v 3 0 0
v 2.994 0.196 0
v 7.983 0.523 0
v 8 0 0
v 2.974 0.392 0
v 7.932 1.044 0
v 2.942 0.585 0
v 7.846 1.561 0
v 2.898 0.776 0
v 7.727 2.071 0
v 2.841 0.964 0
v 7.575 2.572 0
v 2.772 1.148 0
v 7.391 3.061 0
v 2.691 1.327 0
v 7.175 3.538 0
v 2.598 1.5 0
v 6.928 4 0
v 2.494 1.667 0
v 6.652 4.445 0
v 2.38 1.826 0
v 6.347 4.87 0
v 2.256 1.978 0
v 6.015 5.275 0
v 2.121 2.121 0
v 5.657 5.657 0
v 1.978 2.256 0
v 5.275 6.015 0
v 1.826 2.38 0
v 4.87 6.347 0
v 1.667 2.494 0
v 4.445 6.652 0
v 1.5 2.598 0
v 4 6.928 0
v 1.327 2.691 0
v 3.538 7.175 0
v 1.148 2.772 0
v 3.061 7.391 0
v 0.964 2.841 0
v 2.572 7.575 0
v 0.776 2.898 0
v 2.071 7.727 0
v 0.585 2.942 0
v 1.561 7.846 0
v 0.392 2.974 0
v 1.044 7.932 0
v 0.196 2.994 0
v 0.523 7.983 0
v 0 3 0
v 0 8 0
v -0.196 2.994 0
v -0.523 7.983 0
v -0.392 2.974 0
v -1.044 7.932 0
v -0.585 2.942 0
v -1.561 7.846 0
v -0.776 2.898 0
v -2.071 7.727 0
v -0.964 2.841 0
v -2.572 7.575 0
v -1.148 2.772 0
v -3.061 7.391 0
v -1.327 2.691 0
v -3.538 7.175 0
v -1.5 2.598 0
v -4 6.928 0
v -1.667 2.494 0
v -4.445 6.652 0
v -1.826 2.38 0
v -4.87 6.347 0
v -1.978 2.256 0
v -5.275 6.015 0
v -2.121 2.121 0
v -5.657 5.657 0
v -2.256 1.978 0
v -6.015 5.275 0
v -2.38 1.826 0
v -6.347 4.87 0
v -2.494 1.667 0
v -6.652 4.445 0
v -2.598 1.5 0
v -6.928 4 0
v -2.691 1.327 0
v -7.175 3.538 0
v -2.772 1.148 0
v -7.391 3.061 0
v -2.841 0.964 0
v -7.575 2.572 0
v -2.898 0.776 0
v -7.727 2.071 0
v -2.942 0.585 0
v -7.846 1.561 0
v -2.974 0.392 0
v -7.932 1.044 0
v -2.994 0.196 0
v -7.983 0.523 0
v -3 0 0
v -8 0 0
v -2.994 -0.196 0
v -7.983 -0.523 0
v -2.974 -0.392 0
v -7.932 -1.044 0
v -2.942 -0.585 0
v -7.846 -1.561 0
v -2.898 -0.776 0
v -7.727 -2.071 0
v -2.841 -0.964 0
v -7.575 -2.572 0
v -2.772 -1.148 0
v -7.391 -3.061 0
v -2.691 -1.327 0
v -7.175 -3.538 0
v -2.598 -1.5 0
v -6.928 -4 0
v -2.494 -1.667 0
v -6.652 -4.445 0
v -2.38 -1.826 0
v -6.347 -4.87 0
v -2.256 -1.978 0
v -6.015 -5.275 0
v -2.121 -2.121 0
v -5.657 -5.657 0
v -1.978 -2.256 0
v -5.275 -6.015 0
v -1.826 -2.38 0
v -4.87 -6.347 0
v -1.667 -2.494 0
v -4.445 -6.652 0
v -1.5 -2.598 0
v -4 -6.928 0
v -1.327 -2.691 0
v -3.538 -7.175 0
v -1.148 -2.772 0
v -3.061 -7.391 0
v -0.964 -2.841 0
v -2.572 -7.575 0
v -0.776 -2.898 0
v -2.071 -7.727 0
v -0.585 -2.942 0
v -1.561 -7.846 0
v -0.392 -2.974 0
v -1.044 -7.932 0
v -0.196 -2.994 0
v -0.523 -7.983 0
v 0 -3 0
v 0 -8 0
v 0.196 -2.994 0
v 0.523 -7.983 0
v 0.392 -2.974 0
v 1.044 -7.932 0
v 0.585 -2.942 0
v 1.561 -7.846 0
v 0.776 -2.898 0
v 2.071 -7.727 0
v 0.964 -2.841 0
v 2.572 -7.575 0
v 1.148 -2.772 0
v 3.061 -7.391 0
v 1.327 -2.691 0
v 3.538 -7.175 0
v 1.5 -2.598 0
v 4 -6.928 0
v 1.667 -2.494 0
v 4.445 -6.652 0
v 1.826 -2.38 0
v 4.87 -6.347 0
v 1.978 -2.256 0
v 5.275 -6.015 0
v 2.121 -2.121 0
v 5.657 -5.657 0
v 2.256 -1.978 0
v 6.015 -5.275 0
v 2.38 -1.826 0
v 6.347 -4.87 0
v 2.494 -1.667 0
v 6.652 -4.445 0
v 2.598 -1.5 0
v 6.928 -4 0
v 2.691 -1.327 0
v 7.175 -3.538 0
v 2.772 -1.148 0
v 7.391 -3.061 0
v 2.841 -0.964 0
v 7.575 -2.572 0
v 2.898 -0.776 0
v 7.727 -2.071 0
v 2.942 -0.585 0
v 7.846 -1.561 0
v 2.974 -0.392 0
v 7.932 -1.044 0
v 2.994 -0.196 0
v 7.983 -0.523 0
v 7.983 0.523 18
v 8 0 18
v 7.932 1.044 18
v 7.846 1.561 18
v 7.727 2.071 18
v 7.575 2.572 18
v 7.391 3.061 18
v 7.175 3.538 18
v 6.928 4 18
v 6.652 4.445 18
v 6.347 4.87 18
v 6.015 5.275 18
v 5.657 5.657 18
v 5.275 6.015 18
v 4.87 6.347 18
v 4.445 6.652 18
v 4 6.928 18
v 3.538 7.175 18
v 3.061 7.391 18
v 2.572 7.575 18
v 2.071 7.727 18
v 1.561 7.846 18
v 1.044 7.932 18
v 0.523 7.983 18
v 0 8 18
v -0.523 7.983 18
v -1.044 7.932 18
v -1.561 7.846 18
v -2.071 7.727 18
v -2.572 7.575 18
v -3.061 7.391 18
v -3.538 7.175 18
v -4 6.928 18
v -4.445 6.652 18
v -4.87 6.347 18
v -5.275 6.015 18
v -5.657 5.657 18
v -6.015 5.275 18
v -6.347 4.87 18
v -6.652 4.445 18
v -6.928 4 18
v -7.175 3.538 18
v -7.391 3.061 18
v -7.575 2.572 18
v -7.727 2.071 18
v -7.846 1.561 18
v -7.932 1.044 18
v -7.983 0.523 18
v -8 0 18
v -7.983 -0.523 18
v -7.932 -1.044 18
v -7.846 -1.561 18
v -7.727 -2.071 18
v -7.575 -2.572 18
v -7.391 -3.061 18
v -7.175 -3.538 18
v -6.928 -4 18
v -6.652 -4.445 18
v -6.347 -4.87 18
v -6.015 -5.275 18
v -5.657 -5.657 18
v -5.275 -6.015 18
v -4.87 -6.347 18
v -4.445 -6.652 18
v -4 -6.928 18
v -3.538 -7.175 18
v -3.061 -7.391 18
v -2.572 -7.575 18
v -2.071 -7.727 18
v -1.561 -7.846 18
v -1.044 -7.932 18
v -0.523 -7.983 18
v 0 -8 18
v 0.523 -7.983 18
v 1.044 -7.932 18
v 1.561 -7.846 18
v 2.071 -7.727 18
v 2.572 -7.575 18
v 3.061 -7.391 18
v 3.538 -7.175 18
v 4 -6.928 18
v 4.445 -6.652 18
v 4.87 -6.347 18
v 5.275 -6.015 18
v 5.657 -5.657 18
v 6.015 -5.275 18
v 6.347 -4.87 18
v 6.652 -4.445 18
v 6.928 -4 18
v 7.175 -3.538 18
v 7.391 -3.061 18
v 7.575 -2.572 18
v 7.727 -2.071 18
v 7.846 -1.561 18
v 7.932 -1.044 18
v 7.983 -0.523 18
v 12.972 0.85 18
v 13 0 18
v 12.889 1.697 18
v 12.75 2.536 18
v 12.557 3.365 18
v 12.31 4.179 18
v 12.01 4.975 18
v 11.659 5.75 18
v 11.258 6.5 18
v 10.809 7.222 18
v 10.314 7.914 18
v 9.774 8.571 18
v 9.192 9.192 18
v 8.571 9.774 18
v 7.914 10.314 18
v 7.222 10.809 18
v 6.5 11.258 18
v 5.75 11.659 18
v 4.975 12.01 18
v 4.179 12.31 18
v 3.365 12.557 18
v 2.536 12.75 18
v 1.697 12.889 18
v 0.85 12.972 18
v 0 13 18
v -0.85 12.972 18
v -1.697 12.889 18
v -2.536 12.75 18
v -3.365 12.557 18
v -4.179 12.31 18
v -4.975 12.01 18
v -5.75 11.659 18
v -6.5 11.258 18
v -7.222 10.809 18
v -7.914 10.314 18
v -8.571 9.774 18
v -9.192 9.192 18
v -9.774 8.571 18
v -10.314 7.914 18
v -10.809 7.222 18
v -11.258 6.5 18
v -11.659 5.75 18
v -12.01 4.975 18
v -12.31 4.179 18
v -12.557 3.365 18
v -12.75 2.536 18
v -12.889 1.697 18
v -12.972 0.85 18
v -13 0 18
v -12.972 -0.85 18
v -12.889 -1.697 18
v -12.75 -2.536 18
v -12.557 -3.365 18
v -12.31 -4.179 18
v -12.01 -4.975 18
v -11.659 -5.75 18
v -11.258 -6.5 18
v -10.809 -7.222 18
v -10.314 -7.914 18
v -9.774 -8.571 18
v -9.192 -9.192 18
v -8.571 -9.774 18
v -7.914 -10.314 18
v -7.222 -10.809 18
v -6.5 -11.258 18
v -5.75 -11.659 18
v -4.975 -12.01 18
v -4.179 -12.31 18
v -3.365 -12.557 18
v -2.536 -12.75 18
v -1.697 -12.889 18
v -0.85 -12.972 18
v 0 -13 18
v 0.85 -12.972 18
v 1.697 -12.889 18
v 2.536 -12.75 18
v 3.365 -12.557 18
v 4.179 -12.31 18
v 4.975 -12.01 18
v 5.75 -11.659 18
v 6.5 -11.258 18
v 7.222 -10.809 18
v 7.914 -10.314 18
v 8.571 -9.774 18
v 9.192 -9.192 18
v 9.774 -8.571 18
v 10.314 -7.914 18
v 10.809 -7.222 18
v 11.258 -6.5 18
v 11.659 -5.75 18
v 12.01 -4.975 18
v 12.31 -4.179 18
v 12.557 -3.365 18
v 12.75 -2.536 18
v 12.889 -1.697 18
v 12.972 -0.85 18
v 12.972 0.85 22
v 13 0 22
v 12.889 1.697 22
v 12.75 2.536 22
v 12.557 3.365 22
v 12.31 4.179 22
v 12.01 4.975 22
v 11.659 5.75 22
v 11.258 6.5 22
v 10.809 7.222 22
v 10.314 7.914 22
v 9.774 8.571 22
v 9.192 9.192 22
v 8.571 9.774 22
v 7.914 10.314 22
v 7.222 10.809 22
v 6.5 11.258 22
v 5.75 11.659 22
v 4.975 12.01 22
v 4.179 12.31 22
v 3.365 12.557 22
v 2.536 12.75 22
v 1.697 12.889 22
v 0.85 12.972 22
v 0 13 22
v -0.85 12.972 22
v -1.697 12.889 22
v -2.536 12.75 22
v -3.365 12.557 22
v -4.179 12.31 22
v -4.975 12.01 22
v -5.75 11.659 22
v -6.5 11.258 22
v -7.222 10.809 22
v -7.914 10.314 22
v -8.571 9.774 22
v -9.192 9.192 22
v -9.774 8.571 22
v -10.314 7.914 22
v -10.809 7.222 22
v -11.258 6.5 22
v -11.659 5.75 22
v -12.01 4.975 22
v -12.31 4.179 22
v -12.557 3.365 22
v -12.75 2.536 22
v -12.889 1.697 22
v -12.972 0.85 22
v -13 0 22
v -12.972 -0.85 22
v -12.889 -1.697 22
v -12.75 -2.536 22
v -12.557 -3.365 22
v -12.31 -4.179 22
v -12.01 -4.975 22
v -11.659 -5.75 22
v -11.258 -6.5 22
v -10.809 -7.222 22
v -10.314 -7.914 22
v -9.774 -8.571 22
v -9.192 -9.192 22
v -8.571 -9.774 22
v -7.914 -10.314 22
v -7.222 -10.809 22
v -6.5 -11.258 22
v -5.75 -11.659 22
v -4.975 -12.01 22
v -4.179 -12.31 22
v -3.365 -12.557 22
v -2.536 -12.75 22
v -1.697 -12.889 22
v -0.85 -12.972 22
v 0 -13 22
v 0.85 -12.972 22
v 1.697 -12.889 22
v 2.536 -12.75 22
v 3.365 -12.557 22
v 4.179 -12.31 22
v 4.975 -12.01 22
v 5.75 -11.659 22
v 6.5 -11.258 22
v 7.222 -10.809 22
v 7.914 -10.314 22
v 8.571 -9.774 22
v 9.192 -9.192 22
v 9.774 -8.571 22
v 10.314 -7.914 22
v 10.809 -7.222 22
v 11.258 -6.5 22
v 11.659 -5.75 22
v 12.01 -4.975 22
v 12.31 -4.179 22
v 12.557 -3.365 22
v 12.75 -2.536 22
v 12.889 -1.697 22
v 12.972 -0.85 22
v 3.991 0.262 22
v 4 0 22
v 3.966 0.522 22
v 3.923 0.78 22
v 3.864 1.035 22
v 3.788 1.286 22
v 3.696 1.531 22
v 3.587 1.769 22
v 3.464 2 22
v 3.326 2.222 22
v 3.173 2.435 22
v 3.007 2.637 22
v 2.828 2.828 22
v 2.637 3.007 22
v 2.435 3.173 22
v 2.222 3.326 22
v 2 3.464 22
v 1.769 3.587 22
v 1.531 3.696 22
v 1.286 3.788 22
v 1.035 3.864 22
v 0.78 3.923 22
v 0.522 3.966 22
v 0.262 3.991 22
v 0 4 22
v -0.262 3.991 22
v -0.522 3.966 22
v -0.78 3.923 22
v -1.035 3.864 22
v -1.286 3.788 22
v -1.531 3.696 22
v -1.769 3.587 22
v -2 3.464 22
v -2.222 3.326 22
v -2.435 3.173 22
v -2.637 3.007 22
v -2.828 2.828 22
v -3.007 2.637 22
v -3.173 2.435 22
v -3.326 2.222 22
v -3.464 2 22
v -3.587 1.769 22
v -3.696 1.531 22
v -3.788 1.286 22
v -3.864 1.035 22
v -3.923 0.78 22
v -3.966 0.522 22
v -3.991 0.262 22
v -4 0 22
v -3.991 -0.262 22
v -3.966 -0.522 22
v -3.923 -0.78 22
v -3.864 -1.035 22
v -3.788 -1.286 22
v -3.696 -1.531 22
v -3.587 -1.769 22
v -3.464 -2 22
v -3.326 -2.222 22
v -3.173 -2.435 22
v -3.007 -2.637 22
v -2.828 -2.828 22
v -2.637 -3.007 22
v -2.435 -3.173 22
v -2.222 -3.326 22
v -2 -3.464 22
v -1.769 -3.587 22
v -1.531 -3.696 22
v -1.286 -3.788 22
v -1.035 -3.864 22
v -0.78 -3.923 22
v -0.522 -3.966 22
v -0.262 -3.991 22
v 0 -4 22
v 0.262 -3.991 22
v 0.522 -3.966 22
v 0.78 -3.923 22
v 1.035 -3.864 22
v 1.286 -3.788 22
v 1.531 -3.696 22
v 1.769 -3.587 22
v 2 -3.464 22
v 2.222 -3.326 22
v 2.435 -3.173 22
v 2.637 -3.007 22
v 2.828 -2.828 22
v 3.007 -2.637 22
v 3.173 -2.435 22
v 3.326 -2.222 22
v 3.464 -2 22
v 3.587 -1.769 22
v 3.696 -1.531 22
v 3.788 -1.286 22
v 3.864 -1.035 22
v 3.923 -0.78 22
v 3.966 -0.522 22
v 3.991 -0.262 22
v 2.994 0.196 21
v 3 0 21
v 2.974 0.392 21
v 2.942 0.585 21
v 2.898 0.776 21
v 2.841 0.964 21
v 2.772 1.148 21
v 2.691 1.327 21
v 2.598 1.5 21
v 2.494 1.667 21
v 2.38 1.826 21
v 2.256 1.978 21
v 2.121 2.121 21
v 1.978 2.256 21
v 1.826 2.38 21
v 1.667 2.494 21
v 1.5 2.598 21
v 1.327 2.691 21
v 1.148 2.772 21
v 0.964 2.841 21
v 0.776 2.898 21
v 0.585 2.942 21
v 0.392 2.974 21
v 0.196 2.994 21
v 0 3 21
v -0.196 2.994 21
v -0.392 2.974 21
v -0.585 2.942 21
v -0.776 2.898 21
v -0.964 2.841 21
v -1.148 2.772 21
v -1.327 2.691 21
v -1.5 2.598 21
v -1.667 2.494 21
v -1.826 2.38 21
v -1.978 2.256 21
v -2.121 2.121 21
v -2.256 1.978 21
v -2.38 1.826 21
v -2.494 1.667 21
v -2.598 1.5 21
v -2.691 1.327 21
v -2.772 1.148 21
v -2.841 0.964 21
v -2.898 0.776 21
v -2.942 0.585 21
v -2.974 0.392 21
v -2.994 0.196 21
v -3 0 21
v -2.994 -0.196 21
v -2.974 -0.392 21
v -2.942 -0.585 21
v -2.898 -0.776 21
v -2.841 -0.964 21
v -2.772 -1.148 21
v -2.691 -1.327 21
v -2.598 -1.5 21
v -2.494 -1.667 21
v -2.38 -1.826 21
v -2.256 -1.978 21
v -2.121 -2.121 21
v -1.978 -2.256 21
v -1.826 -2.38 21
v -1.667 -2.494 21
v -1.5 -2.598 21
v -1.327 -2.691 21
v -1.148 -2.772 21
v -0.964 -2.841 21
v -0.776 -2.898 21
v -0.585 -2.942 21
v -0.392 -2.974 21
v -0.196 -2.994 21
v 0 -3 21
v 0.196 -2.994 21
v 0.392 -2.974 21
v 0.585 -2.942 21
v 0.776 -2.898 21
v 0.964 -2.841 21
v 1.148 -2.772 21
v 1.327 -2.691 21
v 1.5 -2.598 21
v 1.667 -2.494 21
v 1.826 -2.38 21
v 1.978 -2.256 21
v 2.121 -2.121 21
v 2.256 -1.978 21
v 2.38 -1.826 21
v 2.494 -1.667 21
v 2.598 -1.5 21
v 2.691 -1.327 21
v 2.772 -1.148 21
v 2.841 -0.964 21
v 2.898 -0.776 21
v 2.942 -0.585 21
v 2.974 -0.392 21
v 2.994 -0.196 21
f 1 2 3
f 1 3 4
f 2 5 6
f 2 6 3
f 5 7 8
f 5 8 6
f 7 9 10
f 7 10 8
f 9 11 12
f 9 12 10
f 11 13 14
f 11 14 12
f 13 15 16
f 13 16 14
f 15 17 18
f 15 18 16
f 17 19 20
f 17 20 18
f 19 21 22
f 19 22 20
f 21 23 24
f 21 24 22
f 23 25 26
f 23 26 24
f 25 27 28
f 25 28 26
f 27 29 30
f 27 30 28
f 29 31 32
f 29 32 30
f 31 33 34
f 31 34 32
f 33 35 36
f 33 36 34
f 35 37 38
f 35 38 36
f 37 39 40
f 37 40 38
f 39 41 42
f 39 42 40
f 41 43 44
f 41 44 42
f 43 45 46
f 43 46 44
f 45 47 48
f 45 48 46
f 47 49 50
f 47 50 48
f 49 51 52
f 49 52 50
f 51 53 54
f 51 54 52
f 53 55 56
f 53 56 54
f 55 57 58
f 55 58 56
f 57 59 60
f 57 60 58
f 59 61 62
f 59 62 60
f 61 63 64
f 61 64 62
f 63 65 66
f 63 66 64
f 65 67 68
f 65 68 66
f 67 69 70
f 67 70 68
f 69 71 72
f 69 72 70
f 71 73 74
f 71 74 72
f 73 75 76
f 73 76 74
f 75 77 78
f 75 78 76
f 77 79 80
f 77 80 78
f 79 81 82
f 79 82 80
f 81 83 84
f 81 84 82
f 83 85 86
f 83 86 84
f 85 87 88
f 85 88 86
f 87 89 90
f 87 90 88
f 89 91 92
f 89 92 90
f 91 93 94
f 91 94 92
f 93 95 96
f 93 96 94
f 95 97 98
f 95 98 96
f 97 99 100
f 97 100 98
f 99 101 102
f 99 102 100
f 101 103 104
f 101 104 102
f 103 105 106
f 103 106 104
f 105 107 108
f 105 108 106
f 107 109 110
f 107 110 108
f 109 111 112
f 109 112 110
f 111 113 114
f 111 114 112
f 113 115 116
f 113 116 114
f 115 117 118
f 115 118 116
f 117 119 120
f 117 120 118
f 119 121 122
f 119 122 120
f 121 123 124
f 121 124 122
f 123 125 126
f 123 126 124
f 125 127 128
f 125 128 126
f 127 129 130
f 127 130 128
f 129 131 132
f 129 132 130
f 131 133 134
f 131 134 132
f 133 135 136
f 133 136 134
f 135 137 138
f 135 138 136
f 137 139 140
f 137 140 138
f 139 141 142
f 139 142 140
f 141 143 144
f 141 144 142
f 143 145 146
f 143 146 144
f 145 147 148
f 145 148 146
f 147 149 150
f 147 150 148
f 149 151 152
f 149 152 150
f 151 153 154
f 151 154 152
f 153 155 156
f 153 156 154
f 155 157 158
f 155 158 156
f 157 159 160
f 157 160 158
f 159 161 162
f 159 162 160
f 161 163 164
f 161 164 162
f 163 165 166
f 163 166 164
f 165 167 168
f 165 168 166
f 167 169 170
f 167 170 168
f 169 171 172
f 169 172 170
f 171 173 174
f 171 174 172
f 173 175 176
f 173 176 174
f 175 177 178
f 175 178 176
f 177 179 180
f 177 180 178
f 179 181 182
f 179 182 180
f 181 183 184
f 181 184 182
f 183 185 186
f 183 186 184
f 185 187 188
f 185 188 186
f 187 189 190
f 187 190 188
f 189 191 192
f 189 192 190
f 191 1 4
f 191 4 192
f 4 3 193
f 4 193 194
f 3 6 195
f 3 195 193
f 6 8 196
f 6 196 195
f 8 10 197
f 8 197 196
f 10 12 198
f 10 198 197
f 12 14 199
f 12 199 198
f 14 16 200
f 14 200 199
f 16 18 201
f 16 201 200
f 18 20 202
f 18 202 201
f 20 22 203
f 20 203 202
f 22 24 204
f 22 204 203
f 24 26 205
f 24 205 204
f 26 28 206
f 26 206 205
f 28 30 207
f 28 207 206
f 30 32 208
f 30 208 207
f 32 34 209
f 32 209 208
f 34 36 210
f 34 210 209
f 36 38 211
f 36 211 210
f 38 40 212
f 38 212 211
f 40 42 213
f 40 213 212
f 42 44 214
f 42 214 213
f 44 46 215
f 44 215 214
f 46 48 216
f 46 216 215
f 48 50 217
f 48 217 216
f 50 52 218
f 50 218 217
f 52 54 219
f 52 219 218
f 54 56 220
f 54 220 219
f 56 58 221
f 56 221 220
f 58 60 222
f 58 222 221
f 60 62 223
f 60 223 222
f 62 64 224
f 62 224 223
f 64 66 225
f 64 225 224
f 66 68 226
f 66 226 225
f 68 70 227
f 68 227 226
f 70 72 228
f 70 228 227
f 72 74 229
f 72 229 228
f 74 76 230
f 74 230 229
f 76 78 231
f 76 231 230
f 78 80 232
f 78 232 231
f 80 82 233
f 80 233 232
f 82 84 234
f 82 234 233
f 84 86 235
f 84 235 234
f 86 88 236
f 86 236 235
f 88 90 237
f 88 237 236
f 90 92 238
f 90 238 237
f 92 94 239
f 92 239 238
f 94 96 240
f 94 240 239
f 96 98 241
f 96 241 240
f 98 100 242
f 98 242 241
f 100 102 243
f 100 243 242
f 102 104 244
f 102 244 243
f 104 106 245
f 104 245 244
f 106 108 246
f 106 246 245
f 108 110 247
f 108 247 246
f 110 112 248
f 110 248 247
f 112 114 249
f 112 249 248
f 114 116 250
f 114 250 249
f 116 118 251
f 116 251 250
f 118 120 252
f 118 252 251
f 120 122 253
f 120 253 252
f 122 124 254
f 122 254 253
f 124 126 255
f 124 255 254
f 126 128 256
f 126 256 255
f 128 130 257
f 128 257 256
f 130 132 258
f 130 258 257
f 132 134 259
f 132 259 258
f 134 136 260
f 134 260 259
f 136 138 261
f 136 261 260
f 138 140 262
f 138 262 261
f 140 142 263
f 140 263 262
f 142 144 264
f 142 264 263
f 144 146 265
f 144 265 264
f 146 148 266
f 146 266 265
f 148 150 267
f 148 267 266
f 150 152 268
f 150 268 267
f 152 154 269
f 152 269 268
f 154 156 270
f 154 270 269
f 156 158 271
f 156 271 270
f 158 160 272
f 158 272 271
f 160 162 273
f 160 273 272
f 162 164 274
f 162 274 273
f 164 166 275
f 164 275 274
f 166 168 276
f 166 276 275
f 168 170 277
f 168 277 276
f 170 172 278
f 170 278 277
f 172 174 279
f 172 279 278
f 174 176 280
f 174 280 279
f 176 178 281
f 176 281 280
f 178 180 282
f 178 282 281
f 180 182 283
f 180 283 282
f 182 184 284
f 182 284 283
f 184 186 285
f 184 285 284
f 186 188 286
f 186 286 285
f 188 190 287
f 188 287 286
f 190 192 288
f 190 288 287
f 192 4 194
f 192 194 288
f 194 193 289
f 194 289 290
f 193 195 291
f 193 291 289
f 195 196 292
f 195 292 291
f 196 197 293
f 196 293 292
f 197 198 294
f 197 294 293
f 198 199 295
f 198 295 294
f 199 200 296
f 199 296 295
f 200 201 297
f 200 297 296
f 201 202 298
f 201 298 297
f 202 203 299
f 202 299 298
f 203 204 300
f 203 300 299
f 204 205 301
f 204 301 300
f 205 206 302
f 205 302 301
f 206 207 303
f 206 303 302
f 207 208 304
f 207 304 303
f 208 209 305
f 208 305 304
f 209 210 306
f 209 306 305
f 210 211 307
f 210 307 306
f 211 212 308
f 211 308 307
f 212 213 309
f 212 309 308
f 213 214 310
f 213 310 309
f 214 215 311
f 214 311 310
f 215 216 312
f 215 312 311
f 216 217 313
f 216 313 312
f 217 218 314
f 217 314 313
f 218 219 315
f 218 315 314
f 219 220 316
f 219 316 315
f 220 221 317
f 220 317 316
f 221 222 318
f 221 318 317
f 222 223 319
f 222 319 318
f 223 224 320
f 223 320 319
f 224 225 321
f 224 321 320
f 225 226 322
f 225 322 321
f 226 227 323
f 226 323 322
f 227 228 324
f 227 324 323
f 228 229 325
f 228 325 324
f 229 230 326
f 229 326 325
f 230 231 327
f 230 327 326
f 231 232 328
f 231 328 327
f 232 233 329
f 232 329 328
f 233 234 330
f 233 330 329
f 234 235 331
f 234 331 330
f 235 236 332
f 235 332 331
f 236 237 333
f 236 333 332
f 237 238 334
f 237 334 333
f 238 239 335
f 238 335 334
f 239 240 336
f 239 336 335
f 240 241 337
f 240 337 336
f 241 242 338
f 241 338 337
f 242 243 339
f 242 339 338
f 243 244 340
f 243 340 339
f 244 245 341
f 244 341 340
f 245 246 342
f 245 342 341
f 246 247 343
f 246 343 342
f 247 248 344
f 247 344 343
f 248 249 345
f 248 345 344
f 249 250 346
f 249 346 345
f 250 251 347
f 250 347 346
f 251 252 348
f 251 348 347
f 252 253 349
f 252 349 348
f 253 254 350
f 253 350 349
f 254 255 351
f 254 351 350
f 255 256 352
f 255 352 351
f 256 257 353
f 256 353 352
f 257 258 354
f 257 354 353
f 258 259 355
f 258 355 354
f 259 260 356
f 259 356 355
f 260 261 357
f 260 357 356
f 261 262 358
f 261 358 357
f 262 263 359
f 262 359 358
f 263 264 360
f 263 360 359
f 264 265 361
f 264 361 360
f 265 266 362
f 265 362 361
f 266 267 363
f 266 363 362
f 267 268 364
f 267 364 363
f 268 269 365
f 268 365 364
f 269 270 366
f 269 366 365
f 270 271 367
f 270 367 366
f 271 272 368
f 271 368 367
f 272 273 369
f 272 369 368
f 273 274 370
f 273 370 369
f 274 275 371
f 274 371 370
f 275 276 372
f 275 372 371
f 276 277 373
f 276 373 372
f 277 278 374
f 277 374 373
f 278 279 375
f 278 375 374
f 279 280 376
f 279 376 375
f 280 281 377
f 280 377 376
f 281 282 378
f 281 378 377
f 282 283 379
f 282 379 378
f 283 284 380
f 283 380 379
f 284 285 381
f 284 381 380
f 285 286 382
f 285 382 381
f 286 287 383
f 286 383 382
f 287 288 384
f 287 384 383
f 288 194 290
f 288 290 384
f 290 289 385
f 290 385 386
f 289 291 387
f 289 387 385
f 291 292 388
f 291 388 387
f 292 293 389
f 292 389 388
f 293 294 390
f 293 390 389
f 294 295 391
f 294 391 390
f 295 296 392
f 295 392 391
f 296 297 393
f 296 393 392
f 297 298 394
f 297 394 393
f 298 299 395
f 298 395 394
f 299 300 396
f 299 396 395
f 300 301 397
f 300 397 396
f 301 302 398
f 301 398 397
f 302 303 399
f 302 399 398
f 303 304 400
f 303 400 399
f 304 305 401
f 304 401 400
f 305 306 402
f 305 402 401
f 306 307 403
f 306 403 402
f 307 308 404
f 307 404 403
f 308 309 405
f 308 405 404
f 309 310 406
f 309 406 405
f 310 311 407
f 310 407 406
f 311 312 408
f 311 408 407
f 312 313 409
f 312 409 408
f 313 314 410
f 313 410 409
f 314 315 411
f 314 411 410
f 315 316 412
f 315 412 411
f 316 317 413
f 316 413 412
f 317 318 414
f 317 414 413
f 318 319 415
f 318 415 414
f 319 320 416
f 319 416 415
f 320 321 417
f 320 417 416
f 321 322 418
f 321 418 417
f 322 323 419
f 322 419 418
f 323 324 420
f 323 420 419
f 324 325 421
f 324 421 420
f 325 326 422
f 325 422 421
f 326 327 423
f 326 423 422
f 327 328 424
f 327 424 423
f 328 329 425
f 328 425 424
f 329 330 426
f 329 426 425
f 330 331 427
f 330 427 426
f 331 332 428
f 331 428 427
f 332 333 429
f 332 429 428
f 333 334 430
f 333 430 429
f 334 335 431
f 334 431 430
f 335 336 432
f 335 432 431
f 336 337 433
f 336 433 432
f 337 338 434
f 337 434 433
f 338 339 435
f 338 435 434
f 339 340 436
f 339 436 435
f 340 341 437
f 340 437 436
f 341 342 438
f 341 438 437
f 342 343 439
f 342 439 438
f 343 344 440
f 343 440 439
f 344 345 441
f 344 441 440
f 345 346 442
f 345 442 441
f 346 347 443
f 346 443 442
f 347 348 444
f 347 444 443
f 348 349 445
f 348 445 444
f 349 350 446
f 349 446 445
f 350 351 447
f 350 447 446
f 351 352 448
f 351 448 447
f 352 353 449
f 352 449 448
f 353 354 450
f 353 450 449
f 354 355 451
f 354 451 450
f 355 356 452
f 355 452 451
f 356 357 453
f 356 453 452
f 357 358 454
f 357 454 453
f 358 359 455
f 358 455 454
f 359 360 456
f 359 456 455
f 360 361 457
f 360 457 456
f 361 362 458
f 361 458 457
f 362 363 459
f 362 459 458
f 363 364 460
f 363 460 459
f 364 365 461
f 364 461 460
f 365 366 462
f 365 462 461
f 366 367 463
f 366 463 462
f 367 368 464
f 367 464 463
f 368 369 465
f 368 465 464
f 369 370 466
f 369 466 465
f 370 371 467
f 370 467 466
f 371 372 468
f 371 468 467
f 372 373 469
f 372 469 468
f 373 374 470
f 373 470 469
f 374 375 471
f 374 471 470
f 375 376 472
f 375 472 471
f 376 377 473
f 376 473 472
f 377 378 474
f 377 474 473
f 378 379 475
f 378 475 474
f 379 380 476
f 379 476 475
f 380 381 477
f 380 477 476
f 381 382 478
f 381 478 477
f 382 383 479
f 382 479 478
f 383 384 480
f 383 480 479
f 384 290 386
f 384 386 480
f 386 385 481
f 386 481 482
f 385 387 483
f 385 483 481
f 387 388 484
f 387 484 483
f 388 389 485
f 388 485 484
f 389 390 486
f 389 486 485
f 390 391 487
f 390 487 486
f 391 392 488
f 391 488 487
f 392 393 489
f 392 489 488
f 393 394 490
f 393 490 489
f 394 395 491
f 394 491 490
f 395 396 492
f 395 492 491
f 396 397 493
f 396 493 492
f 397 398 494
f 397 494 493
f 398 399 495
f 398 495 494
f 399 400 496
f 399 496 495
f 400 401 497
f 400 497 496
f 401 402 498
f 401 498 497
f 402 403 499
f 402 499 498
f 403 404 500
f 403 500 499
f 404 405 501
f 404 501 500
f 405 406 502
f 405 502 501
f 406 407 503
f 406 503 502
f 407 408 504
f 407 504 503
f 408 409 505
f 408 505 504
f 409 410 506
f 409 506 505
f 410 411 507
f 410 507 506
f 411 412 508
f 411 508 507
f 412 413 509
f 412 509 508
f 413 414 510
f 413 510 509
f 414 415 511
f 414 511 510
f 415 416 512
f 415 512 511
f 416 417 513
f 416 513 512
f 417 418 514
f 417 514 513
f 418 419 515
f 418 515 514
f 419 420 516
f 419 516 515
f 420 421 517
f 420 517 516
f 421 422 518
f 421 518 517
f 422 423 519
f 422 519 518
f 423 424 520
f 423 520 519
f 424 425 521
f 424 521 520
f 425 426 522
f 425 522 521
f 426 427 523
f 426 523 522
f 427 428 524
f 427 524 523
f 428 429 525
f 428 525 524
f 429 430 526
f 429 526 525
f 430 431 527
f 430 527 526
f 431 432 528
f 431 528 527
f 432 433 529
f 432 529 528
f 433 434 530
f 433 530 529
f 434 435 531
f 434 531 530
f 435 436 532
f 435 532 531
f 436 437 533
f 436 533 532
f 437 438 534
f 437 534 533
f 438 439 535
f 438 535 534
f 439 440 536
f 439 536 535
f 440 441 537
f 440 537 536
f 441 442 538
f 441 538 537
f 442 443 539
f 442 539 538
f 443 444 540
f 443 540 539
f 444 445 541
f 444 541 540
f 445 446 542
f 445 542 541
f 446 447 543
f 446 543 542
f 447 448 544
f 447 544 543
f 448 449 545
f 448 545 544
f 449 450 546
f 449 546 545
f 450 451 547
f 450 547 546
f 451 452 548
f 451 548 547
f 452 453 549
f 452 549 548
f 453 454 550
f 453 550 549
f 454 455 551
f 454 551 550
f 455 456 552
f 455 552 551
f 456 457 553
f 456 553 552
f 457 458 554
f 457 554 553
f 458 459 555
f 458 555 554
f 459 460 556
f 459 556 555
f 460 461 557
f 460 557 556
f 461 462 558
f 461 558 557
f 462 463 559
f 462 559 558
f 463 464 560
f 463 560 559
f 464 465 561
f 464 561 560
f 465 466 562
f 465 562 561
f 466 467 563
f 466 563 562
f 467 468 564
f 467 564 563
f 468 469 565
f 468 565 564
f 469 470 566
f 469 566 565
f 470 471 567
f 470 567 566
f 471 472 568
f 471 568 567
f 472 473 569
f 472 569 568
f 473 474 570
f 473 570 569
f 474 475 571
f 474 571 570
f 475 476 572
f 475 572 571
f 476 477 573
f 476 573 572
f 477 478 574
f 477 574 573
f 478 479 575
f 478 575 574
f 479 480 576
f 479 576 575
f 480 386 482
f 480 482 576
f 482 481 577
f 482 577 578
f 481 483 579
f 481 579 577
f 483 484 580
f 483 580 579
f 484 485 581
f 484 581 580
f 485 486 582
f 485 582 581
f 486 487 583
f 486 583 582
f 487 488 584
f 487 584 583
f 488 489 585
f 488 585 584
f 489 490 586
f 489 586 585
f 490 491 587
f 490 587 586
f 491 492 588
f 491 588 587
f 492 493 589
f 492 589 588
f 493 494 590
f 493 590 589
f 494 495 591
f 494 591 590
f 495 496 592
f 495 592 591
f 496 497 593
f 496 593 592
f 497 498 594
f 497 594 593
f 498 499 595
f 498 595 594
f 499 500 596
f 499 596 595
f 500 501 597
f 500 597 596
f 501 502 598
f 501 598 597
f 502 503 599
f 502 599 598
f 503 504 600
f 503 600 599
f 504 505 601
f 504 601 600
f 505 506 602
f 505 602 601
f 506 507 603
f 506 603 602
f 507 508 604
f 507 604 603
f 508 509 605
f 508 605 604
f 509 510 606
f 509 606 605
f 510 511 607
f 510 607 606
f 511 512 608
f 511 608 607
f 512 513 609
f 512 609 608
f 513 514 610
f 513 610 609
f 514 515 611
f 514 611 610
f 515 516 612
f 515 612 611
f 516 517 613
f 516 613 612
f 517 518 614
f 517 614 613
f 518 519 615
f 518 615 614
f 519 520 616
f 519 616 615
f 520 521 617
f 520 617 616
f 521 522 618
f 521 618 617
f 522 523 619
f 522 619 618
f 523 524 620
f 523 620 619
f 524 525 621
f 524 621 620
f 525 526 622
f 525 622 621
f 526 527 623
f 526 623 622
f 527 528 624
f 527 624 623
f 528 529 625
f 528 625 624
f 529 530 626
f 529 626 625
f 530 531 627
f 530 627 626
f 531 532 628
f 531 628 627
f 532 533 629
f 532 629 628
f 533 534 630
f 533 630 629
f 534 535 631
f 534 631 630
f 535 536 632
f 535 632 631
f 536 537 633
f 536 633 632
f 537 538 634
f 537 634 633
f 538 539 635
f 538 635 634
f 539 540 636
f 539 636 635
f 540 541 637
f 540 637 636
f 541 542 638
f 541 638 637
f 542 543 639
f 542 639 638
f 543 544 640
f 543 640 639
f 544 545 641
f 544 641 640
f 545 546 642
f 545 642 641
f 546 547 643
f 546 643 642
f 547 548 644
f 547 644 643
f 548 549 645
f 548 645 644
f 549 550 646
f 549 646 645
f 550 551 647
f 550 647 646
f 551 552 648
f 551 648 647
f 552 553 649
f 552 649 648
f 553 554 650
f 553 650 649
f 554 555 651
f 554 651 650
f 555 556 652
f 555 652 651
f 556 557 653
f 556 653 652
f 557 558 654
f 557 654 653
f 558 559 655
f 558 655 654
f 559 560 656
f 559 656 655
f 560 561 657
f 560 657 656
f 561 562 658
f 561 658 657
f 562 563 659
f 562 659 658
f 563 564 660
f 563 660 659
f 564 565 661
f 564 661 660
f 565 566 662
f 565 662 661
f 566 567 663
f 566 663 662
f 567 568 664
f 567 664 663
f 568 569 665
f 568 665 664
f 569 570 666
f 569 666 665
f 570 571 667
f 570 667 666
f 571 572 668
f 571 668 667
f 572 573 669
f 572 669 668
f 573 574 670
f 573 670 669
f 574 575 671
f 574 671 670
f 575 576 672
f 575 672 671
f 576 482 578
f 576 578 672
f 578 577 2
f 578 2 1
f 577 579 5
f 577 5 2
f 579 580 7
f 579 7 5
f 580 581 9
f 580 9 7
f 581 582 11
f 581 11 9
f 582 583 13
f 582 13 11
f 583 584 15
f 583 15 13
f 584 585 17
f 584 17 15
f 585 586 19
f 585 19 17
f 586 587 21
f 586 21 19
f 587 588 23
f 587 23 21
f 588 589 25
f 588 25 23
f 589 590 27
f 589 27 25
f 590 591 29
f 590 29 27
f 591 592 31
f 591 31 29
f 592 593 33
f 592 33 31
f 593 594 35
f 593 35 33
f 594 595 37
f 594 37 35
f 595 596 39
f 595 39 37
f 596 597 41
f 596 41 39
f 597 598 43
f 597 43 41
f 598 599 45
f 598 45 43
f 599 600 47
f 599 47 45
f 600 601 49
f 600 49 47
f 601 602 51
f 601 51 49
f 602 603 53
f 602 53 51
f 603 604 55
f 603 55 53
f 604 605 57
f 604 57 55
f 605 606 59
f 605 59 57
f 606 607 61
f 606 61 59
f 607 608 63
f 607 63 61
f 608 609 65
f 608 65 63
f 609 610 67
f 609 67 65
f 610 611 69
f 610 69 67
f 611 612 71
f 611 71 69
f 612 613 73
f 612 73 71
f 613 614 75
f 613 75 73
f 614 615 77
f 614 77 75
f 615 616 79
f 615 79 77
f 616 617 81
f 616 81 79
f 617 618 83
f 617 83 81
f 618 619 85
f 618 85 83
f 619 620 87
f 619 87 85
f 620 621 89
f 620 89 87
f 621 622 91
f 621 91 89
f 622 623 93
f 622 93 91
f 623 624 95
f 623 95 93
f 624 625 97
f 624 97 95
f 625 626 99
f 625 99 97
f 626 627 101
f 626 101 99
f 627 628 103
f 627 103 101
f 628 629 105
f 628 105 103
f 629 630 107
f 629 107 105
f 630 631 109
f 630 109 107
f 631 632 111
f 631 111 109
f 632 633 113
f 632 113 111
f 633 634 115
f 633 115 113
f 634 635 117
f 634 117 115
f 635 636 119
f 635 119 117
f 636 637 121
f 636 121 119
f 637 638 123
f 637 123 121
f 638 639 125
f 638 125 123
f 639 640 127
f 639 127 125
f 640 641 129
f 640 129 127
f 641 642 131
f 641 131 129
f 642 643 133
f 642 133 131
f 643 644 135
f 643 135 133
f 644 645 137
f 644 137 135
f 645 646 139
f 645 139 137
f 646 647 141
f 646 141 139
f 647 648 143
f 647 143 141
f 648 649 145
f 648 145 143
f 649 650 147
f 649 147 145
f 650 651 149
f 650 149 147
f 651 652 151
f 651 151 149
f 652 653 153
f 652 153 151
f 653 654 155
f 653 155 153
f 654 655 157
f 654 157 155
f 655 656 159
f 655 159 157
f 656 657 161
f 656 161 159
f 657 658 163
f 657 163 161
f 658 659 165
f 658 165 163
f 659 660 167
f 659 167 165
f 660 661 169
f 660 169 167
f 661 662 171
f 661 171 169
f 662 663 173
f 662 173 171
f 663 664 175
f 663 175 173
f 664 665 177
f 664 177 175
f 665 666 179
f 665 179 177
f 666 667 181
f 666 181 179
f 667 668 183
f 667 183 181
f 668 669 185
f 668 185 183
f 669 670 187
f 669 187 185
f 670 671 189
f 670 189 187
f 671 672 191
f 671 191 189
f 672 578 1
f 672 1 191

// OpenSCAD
// Original MechIntel educational model. CC0-1.0. Units: mm.
// Not a standardized or load-rated component.
$fn=96;
// Section points: [radius, height], mm. Edit to change the profile.
section=[[3, 0], [8, 0], [8, 18], [13, 18], [13, 22], [4, 22], [3, 21]];
rotate_extrude($fn=96) polygon(points=section);
